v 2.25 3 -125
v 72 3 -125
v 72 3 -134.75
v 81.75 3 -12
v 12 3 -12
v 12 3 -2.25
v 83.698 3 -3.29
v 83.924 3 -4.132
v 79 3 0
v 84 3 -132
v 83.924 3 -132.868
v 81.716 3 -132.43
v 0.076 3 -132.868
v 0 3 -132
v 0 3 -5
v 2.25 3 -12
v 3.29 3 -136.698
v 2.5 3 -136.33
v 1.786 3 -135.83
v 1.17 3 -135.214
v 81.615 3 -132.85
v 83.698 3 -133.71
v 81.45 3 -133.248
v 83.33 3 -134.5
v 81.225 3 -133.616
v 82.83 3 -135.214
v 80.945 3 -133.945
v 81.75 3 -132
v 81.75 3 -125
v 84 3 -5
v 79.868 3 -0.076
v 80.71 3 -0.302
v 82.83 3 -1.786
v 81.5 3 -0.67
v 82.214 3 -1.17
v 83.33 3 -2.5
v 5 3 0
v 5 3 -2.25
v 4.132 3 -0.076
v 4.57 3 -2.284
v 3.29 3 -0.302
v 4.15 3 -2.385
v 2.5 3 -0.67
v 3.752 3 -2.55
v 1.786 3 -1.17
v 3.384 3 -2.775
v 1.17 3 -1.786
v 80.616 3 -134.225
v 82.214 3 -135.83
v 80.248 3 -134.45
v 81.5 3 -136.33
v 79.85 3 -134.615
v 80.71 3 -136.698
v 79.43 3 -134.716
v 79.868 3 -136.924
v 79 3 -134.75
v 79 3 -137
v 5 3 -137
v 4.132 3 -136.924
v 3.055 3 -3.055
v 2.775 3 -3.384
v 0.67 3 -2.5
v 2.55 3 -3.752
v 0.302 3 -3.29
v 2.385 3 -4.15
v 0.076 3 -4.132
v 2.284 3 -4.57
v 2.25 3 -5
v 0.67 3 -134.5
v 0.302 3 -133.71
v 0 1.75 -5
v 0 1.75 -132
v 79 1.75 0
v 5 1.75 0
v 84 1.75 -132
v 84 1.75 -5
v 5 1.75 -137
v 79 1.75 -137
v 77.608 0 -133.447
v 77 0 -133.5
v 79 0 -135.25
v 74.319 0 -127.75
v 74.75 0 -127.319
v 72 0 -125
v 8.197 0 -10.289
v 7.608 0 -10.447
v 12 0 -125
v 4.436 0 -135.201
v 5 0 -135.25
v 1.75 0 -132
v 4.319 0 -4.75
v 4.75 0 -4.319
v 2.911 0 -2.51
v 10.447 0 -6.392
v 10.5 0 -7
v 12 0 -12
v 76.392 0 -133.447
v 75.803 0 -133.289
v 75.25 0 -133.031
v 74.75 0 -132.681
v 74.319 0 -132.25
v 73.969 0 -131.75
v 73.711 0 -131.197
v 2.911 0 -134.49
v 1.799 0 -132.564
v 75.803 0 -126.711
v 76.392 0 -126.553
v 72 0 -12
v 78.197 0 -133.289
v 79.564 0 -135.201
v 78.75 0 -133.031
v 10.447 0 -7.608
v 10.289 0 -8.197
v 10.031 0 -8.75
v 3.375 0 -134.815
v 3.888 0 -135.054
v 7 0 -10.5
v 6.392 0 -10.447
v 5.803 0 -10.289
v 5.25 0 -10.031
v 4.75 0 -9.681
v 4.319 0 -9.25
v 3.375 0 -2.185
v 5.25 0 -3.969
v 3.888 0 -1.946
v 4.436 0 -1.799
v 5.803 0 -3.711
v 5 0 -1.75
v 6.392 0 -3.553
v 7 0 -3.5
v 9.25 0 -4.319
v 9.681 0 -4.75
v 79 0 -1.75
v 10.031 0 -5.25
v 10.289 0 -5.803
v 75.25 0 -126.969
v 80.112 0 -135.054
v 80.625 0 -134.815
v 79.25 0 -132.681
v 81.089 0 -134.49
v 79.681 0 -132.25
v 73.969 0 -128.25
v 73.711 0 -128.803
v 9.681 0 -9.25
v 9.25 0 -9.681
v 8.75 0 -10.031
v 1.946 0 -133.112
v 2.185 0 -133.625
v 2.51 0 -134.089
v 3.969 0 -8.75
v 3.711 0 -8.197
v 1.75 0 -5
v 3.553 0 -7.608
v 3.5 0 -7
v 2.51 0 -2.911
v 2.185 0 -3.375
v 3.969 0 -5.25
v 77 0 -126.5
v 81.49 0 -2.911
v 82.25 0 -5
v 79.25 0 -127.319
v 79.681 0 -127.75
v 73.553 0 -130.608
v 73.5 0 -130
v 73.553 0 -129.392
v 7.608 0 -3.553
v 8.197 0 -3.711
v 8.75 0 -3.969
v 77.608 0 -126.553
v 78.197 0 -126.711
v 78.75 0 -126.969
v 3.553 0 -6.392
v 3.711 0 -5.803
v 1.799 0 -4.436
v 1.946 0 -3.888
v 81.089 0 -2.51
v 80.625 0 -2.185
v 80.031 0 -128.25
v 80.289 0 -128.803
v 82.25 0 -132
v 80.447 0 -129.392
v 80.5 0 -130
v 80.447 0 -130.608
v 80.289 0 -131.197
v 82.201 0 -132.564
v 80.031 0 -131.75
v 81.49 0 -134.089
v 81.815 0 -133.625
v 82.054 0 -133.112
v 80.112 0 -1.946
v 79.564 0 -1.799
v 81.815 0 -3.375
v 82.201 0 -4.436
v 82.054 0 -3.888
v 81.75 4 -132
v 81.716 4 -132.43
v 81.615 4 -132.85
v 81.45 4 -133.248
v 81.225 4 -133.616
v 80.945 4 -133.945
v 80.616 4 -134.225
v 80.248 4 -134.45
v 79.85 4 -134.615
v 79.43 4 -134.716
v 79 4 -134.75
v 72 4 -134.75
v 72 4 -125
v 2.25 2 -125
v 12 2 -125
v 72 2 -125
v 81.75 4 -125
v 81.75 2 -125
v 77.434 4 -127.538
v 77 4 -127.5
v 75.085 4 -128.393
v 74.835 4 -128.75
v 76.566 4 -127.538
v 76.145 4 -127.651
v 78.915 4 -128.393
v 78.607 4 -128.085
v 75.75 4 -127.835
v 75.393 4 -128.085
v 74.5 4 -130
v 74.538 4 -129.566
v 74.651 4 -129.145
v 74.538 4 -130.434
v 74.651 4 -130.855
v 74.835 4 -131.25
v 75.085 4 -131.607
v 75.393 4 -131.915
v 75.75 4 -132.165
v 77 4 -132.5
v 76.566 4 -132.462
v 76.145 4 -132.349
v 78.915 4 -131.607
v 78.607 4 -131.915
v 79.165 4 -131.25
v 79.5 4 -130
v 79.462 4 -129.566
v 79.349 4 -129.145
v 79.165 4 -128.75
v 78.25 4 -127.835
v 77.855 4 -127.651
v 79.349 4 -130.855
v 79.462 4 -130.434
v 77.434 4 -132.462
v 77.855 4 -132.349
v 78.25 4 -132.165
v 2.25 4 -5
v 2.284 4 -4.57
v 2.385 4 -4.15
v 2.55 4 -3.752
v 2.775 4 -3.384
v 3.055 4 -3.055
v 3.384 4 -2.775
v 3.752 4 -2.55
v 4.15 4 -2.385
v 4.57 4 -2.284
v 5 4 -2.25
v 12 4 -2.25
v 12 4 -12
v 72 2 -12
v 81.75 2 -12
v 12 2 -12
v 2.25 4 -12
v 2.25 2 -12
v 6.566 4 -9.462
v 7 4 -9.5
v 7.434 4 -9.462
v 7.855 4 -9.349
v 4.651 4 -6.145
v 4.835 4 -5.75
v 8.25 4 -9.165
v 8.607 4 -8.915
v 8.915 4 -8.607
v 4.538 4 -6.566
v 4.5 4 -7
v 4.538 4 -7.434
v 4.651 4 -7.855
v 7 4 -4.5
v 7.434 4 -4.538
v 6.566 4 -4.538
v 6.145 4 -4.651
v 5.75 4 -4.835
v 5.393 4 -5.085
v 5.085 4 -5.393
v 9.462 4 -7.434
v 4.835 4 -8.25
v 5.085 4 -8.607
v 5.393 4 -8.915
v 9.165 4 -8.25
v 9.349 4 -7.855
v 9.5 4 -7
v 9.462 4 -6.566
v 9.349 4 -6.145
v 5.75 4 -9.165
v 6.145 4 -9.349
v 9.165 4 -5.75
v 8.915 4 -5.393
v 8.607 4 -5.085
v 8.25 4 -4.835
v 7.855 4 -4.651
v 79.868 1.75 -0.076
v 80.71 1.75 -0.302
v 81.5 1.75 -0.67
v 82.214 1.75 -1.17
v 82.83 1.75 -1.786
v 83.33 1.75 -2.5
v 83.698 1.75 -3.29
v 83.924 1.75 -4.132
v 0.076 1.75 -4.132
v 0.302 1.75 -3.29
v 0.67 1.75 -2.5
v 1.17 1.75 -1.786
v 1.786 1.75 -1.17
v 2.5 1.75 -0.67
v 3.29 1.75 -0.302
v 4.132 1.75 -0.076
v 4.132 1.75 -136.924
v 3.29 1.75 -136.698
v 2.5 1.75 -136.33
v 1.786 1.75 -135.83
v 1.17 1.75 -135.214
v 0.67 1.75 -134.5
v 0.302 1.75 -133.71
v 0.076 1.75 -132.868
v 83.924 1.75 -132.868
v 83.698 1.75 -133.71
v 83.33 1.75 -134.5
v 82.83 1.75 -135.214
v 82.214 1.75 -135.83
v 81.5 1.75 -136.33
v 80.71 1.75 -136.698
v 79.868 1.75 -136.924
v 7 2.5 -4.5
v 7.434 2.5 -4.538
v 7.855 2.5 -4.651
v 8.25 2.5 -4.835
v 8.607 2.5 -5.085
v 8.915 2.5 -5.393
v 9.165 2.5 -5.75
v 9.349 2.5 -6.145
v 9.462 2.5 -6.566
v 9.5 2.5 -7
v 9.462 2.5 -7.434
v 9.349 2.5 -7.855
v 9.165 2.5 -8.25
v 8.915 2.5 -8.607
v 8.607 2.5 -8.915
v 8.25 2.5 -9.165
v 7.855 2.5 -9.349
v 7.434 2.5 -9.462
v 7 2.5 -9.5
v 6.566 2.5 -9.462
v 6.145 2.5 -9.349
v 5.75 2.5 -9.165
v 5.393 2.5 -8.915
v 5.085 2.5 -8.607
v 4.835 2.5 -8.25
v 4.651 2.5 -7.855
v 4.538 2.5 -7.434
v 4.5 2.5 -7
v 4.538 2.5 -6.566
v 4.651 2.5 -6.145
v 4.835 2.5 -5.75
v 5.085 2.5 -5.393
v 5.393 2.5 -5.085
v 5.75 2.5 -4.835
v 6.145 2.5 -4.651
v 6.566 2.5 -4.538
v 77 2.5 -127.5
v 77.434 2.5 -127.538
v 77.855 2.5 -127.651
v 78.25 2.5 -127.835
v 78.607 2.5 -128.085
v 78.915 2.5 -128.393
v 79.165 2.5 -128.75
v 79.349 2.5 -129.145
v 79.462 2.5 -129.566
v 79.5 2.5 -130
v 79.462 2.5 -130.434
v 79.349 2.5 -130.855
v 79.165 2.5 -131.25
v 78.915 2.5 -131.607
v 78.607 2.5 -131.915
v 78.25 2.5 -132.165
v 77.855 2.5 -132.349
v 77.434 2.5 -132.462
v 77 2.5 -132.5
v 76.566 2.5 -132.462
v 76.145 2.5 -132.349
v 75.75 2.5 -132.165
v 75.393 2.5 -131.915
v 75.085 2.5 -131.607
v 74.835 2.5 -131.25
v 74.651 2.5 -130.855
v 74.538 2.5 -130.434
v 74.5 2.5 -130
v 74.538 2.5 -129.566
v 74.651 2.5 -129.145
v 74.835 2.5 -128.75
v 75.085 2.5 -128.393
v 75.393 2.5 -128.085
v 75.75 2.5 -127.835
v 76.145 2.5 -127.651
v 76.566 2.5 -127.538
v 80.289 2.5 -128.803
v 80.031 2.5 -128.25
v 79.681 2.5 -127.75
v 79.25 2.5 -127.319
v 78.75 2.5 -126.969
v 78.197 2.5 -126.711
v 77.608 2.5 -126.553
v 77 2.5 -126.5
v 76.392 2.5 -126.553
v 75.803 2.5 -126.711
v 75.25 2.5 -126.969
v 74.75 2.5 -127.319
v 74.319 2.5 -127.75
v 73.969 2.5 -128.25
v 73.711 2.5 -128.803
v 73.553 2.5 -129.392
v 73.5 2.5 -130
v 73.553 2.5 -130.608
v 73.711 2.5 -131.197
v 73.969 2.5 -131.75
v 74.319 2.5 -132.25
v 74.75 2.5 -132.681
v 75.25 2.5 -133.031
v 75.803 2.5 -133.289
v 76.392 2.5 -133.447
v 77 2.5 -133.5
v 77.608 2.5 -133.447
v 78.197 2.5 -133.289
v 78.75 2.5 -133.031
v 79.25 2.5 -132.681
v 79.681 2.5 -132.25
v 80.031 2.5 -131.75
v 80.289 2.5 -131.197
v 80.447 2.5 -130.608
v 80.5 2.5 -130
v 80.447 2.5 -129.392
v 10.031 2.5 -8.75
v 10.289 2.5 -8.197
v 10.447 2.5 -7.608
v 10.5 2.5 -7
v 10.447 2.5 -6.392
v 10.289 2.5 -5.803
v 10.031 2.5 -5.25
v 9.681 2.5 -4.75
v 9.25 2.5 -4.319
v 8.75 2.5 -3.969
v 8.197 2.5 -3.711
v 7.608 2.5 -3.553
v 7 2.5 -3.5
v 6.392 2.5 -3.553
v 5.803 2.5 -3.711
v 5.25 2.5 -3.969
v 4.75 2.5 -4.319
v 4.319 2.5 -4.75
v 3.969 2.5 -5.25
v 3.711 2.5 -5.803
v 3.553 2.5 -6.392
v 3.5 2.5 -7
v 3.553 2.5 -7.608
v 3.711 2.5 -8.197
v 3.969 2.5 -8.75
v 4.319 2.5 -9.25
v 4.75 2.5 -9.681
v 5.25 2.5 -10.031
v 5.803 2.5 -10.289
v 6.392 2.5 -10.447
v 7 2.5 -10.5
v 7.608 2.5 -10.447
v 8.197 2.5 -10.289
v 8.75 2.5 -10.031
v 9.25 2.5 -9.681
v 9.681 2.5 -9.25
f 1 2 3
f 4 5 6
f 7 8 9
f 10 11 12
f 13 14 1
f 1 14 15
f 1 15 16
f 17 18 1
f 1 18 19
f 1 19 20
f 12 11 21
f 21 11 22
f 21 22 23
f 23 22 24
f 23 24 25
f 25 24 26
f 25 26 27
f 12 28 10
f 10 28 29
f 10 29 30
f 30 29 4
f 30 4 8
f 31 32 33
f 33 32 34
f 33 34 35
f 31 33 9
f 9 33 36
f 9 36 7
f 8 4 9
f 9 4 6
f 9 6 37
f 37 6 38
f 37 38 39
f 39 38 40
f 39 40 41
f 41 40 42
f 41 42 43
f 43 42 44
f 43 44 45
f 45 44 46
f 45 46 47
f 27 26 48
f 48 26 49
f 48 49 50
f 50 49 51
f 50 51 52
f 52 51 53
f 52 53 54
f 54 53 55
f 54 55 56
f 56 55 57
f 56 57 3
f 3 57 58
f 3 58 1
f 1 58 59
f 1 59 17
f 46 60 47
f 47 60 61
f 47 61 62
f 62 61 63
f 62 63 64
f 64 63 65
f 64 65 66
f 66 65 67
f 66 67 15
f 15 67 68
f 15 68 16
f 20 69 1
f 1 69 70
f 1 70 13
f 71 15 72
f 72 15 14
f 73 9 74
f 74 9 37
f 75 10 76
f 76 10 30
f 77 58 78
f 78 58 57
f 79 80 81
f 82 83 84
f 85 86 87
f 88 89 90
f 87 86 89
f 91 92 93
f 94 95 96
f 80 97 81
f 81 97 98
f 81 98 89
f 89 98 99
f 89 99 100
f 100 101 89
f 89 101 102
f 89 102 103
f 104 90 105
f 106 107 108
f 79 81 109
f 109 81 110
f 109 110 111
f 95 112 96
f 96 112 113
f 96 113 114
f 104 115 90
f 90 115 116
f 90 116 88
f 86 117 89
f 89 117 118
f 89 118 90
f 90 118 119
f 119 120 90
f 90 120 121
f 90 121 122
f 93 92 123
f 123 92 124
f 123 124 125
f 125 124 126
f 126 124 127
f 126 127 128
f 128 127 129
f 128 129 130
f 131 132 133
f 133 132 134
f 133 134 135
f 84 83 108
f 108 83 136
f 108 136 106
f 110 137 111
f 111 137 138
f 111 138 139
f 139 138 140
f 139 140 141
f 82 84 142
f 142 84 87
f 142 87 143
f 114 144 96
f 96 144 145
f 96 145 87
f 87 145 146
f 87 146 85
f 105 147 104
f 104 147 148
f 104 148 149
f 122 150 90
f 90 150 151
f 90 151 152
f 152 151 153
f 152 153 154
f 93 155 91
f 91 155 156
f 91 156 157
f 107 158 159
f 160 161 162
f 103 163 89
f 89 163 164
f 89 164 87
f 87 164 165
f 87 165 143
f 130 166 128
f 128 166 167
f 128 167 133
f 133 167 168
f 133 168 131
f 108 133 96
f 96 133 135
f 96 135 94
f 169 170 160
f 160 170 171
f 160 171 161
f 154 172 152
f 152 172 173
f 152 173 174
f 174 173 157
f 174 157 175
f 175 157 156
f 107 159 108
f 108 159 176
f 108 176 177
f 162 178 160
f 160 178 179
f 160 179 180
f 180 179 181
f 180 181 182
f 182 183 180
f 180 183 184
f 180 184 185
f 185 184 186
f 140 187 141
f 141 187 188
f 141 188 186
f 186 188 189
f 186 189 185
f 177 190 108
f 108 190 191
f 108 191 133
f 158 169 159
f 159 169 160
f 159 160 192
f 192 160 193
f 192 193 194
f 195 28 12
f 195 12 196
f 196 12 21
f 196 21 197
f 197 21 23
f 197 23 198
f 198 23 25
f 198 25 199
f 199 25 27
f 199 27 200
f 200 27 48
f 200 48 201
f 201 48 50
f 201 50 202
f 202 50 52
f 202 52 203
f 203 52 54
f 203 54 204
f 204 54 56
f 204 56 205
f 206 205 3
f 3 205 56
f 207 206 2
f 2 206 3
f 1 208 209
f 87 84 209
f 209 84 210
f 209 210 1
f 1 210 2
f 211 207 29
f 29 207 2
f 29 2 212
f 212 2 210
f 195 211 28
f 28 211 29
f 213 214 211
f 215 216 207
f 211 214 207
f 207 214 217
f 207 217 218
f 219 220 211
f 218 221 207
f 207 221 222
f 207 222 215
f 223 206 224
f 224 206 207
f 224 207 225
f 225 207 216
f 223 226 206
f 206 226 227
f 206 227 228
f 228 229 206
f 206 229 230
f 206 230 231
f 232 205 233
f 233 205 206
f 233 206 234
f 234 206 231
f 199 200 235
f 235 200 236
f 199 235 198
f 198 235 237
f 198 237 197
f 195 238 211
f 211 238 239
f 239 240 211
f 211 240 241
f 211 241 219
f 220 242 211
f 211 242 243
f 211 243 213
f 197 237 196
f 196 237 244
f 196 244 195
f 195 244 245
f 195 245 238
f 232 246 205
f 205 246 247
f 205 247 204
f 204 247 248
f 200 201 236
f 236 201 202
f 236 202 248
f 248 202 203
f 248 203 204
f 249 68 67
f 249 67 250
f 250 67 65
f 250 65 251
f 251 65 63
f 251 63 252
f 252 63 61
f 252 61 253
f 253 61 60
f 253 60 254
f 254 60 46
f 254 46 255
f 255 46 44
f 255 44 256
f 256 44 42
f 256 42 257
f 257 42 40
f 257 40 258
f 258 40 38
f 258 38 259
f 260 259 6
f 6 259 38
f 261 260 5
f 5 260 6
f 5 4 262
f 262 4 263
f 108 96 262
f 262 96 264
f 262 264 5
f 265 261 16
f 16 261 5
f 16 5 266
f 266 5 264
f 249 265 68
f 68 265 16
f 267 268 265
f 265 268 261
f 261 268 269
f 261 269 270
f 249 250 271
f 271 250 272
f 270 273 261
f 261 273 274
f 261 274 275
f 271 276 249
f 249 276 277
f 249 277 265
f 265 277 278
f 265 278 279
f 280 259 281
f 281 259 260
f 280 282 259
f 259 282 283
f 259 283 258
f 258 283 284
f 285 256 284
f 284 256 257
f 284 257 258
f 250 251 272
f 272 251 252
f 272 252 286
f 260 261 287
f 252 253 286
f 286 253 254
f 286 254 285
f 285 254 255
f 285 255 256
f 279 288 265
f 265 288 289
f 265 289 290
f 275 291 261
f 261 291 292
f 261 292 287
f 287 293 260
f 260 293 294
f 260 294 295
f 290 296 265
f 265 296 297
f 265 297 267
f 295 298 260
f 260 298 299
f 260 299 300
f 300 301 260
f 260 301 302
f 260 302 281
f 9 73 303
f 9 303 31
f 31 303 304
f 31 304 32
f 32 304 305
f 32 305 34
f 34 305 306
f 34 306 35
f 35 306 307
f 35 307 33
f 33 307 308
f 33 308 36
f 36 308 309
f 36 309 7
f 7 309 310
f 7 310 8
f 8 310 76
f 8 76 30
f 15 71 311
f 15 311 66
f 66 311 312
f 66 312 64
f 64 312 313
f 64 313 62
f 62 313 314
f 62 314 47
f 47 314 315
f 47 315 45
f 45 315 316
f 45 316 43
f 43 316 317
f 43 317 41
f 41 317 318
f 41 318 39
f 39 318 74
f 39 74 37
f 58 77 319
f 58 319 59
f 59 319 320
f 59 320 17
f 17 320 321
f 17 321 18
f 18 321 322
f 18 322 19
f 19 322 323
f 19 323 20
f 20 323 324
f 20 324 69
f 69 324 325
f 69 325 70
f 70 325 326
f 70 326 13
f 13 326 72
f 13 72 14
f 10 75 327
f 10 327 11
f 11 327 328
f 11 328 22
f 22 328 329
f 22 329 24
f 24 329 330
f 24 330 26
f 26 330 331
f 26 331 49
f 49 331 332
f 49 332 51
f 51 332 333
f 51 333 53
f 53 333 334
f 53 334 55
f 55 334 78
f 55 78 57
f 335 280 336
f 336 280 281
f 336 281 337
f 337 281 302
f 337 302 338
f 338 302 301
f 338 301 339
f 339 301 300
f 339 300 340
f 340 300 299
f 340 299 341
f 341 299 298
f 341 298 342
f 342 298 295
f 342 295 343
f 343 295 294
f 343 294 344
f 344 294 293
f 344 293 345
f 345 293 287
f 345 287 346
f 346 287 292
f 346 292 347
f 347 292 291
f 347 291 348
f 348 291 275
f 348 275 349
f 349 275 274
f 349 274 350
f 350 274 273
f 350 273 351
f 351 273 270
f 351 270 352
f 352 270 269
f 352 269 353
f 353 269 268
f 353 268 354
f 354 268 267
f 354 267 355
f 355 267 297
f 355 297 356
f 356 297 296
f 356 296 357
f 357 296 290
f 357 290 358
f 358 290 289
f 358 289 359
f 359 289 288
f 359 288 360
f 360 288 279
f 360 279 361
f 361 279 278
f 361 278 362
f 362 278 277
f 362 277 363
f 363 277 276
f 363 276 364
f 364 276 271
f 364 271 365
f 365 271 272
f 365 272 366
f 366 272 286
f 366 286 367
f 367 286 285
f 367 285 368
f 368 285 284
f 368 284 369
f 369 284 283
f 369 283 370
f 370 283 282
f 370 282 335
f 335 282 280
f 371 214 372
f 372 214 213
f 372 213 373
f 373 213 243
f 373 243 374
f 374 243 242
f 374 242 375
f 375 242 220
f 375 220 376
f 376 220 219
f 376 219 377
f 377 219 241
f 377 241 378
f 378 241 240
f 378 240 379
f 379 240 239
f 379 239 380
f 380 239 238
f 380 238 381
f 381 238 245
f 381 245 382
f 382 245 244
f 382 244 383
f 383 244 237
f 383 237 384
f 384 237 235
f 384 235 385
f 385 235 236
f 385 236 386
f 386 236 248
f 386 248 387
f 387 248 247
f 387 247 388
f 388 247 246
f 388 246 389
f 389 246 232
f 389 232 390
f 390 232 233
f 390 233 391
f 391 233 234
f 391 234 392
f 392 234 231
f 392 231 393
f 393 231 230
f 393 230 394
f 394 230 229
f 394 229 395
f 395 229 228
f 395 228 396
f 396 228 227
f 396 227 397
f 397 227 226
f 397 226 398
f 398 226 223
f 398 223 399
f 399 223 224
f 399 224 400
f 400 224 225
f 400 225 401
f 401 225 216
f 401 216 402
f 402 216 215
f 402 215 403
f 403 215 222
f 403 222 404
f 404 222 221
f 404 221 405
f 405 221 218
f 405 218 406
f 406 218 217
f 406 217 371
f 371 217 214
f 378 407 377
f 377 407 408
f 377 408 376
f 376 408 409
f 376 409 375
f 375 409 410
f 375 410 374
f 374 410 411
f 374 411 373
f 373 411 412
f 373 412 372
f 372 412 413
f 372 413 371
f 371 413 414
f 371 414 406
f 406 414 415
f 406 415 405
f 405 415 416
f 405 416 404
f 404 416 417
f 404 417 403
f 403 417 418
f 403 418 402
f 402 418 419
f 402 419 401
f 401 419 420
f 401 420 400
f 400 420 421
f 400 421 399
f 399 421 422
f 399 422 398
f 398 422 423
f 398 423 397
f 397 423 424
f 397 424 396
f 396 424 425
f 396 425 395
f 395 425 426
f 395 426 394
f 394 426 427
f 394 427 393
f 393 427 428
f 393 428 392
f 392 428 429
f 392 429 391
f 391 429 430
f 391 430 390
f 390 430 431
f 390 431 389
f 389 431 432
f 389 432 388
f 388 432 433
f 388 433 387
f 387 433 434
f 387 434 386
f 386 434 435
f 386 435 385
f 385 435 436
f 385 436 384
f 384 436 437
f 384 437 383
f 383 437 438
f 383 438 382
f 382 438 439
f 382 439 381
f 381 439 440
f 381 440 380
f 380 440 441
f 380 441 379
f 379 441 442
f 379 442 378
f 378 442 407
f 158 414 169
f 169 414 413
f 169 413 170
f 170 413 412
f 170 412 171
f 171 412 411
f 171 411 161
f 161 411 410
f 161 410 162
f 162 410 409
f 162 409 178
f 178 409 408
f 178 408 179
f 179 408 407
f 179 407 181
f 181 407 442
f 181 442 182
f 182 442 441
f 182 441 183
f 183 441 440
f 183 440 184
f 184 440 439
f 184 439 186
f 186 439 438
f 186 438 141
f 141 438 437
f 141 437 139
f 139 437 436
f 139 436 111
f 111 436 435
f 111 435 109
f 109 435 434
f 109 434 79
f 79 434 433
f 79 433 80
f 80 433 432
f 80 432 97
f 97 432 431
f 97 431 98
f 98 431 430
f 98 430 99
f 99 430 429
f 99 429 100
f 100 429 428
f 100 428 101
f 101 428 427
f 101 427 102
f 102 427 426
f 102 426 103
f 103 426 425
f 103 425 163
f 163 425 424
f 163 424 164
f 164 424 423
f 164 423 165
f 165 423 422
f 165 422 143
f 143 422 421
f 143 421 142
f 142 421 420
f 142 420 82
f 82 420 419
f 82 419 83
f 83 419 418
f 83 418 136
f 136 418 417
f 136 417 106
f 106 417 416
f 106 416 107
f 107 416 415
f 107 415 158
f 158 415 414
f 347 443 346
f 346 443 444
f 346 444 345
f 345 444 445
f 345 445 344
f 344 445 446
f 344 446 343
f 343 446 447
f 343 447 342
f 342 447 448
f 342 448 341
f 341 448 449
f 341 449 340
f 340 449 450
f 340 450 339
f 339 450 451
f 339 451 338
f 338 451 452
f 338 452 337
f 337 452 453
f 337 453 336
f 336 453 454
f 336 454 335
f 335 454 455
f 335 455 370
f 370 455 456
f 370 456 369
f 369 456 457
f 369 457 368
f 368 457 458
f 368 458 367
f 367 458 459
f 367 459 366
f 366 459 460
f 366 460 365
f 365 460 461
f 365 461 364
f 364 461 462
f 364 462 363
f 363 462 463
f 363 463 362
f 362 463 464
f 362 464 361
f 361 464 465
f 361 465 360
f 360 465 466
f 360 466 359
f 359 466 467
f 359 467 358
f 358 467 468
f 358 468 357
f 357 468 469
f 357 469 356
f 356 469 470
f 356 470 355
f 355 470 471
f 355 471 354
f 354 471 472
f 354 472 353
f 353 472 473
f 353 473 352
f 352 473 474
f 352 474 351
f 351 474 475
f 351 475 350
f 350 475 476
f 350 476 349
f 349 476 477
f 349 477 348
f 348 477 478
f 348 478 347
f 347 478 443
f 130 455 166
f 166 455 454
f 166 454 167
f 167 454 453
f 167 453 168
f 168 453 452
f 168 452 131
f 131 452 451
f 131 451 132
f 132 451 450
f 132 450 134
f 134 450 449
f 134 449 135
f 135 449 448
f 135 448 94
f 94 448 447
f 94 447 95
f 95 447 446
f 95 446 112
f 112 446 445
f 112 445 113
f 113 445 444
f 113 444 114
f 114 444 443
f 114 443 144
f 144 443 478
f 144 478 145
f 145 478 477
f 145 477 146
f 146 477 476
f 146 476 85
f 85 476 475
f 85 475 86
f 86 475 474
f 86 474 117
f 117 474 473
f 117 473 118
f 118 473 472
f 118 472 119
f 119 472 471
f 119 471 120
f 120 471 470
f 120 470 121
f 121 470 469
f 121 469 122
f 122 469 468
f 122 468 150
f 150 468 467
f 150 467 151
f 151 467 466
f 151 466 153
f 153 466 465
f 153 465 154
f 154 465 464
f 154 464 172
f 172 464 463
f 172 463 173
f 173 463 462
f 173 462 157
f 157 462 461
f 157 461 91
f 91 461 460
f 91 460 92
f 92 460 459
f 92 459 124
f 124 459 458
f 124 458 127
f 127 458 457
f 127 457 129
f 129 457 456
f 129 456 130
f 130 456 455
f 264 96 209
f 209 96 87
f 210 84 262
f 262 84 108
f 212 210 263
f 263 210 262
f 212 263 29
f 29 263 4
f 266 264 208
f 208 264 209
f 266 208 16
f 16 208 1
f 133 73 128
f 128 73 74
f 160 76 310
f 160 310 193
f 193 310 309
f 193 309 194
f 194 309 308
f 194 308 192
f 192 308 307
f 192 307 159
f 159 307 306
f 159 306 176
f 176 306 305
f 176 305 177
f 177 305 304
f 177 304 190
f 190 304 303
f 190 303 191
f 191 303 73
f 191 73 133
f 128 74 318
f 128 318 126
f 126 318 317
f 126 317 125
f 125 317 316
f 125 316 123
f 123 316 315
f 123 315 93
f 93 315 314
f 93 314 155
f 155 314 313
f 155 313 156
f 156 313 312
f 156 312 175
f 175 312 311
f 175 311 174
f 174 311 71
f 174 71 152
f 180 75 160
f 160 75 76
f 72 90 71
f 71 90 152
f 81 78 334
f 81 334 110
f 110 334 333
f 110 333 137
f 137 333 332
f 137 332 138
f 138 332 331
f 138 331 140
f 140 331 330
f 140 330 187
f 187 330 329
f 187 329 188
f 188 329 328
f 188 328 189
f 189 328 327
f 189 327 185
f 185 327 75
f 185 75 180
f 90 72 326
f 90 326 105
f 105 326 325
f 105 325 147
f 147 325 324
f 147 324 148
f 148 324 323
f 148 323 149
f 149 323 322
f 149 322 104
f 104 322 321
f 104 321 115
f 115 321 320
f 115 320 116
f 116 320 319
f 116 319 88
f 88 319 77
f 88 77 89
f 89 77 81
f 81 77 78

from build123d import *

# Parameters (mm, degrees)
SKETCH1_W           = 84
SKETCH1_H           = 137
BOSS_EXTRUDE1_DEPTH = 3
BOSS_EXTRUDE2_DEPTH = 1
FILLET1_R           = 5
SKETCH4_R           = 2.5
CUT_EXTRUDE1_DEPTH  = 5
SKETCH5_R           = 3.5
CUT_EXTRUDE2_DEPTH  = 3.5
SKETCH6_W           = 60
SKETCH6_H           = 113
CUT_EXTRUDE3_DEPTH  = 4
SKETCH7_W           = 79.5
SKETCH7_H           = 113
CUT_EXTRUDE4_DEPTH  = 1
CHAMFER1_SIZE       = 1.75


with BuildPart() as part:
    # Sketch1 → Boss-Extrude1 (new body)
    with BuildSketch(Plane(origin=(0, 0, 0), x_dir=(1, 0, 0), z_dir=(0, 1, 0))):
        with Locations((42, 68.5)):
            Rectangle(SKETCH1_W, SKETCH1_H)
    extrude(amount=BOSS_EXTRUDE1_DEPTH)

    # Sketch3 → Boss-Extrude2 (add)
    with BuildSketch(Plane(origin=(0, 3, 0), x_dir=(1, 0, 0), z_dir=(0, 1, 0))):
        with BuildLine():
            Line((81.75, 125), (72, 125))
            Line((72, 125), (72, 134.75))
            Line((72, 134.75), (79, 134.75))
            ThreePointArc((79, 134.75), (80.944543648, 133.944543648), (81.75, 132))
            Line((81.75, 132), (81.75, 125))
        make_face()
        with BuildLine():
            Line((12, 2.25), (12, 12))
            Line((12, 12), (2.25, 12))
            Line((2.25, 12), (2.25, 5))
            ThreePointArc((2.25, 5), (3.055456352, 3.055456352), (5, 2.25))
            Line((5, 2.25), (12, 2.25))
        make_face()
    extrude(amount=BOSS_EXTRUDE2_DEPTH)

    # Fillet1
    fillet1_edges = [part.edges().sort_by_distance(p)[0] for p in [
        (0, 1.5, -137),
        (84, 1.5, -137),
        (84, 1.5, 0),
        (0, 1.5, 0),
    ]]
    fillet(fillet1_edges, radius=FILLET1_R)

    # Sketch4 → Cut-Extrude1 (cut, through all)
    with BuildSketch(Plane(origin=(0, 4, 0), x_dir=(1, 0, 0), z_dir=(0, 1, 0))):
        with Locations((7, 7)):
            Circle(SKETCH4_R)
        with Locations((77, 130)):
            Circle(SKETCH4_R)
    extrude(amount=-CUT_EXTRUDE1_DEPTH, mode=Mode.SUBTRACT)

    # Sketch5 → Cut-Extrude2 (cut, through all)
    with BuildSketch(Plane(origin=(0, 2.5, 0), x_dir=(1, 0, 0), z_dir=(0, 1, 0))):
        with Locations((7, 7)):
            Circle(SKETCH5_R)
        with Locations((77, 130)):
            Circle(SKETCH5_R)
    extrude(amount=-CUT_EXTRUDE2_DEPTH, mode=Mode.SUBTRACT)

    # Sketch6 → Cut-Extrude3 (cut, through all)
    with BuildSketch(Plane(origin=(0, 3, 0), x_dir=(1, 0, 0), z_dir=(0, 1, 0))):
        with Locations((42, 68.5)):
            Rectangle(SKETCH6_W, SKETCH6_H)
    extrude(amount=-CUT_EXTRUDE3_DEPTH, mode=Mode.SUBTRACT)

    # Sketch7 → Cut-Extrude4 (cut)
    with BuildSketch(Plane(origin=(0, 3, 0), x_dir=(1, 0, 0), z_dir=(0, 1, 0))):
        with Locations((42, 68.5)):
            Rectangle(SKETCH7_W, SKETCH7_H)
    extrude(amount=-CUT_EXTRUDE4_DEPTH, mode=Mode.SUBTRACT)

    # Chamfer1
    chamfer1_edges = [part.edges().sort_by_distance(p)[0] for p in [
        (84, 0, -68.5),
        (0, 0, -68.5),
        (42, 0, -137),
        (42, 0, 0),
        (82.535533906, 0, -135.535533906),
        (1.464466094, 0, -135.535533906),
        (1.464466094, 0, -1.464466094),
        (82.535533906, 0, -1.464466094),
    ]]
    chamfer(chamfer1_edges, length=CHAMFER1_SIZE)


solid = part.part
